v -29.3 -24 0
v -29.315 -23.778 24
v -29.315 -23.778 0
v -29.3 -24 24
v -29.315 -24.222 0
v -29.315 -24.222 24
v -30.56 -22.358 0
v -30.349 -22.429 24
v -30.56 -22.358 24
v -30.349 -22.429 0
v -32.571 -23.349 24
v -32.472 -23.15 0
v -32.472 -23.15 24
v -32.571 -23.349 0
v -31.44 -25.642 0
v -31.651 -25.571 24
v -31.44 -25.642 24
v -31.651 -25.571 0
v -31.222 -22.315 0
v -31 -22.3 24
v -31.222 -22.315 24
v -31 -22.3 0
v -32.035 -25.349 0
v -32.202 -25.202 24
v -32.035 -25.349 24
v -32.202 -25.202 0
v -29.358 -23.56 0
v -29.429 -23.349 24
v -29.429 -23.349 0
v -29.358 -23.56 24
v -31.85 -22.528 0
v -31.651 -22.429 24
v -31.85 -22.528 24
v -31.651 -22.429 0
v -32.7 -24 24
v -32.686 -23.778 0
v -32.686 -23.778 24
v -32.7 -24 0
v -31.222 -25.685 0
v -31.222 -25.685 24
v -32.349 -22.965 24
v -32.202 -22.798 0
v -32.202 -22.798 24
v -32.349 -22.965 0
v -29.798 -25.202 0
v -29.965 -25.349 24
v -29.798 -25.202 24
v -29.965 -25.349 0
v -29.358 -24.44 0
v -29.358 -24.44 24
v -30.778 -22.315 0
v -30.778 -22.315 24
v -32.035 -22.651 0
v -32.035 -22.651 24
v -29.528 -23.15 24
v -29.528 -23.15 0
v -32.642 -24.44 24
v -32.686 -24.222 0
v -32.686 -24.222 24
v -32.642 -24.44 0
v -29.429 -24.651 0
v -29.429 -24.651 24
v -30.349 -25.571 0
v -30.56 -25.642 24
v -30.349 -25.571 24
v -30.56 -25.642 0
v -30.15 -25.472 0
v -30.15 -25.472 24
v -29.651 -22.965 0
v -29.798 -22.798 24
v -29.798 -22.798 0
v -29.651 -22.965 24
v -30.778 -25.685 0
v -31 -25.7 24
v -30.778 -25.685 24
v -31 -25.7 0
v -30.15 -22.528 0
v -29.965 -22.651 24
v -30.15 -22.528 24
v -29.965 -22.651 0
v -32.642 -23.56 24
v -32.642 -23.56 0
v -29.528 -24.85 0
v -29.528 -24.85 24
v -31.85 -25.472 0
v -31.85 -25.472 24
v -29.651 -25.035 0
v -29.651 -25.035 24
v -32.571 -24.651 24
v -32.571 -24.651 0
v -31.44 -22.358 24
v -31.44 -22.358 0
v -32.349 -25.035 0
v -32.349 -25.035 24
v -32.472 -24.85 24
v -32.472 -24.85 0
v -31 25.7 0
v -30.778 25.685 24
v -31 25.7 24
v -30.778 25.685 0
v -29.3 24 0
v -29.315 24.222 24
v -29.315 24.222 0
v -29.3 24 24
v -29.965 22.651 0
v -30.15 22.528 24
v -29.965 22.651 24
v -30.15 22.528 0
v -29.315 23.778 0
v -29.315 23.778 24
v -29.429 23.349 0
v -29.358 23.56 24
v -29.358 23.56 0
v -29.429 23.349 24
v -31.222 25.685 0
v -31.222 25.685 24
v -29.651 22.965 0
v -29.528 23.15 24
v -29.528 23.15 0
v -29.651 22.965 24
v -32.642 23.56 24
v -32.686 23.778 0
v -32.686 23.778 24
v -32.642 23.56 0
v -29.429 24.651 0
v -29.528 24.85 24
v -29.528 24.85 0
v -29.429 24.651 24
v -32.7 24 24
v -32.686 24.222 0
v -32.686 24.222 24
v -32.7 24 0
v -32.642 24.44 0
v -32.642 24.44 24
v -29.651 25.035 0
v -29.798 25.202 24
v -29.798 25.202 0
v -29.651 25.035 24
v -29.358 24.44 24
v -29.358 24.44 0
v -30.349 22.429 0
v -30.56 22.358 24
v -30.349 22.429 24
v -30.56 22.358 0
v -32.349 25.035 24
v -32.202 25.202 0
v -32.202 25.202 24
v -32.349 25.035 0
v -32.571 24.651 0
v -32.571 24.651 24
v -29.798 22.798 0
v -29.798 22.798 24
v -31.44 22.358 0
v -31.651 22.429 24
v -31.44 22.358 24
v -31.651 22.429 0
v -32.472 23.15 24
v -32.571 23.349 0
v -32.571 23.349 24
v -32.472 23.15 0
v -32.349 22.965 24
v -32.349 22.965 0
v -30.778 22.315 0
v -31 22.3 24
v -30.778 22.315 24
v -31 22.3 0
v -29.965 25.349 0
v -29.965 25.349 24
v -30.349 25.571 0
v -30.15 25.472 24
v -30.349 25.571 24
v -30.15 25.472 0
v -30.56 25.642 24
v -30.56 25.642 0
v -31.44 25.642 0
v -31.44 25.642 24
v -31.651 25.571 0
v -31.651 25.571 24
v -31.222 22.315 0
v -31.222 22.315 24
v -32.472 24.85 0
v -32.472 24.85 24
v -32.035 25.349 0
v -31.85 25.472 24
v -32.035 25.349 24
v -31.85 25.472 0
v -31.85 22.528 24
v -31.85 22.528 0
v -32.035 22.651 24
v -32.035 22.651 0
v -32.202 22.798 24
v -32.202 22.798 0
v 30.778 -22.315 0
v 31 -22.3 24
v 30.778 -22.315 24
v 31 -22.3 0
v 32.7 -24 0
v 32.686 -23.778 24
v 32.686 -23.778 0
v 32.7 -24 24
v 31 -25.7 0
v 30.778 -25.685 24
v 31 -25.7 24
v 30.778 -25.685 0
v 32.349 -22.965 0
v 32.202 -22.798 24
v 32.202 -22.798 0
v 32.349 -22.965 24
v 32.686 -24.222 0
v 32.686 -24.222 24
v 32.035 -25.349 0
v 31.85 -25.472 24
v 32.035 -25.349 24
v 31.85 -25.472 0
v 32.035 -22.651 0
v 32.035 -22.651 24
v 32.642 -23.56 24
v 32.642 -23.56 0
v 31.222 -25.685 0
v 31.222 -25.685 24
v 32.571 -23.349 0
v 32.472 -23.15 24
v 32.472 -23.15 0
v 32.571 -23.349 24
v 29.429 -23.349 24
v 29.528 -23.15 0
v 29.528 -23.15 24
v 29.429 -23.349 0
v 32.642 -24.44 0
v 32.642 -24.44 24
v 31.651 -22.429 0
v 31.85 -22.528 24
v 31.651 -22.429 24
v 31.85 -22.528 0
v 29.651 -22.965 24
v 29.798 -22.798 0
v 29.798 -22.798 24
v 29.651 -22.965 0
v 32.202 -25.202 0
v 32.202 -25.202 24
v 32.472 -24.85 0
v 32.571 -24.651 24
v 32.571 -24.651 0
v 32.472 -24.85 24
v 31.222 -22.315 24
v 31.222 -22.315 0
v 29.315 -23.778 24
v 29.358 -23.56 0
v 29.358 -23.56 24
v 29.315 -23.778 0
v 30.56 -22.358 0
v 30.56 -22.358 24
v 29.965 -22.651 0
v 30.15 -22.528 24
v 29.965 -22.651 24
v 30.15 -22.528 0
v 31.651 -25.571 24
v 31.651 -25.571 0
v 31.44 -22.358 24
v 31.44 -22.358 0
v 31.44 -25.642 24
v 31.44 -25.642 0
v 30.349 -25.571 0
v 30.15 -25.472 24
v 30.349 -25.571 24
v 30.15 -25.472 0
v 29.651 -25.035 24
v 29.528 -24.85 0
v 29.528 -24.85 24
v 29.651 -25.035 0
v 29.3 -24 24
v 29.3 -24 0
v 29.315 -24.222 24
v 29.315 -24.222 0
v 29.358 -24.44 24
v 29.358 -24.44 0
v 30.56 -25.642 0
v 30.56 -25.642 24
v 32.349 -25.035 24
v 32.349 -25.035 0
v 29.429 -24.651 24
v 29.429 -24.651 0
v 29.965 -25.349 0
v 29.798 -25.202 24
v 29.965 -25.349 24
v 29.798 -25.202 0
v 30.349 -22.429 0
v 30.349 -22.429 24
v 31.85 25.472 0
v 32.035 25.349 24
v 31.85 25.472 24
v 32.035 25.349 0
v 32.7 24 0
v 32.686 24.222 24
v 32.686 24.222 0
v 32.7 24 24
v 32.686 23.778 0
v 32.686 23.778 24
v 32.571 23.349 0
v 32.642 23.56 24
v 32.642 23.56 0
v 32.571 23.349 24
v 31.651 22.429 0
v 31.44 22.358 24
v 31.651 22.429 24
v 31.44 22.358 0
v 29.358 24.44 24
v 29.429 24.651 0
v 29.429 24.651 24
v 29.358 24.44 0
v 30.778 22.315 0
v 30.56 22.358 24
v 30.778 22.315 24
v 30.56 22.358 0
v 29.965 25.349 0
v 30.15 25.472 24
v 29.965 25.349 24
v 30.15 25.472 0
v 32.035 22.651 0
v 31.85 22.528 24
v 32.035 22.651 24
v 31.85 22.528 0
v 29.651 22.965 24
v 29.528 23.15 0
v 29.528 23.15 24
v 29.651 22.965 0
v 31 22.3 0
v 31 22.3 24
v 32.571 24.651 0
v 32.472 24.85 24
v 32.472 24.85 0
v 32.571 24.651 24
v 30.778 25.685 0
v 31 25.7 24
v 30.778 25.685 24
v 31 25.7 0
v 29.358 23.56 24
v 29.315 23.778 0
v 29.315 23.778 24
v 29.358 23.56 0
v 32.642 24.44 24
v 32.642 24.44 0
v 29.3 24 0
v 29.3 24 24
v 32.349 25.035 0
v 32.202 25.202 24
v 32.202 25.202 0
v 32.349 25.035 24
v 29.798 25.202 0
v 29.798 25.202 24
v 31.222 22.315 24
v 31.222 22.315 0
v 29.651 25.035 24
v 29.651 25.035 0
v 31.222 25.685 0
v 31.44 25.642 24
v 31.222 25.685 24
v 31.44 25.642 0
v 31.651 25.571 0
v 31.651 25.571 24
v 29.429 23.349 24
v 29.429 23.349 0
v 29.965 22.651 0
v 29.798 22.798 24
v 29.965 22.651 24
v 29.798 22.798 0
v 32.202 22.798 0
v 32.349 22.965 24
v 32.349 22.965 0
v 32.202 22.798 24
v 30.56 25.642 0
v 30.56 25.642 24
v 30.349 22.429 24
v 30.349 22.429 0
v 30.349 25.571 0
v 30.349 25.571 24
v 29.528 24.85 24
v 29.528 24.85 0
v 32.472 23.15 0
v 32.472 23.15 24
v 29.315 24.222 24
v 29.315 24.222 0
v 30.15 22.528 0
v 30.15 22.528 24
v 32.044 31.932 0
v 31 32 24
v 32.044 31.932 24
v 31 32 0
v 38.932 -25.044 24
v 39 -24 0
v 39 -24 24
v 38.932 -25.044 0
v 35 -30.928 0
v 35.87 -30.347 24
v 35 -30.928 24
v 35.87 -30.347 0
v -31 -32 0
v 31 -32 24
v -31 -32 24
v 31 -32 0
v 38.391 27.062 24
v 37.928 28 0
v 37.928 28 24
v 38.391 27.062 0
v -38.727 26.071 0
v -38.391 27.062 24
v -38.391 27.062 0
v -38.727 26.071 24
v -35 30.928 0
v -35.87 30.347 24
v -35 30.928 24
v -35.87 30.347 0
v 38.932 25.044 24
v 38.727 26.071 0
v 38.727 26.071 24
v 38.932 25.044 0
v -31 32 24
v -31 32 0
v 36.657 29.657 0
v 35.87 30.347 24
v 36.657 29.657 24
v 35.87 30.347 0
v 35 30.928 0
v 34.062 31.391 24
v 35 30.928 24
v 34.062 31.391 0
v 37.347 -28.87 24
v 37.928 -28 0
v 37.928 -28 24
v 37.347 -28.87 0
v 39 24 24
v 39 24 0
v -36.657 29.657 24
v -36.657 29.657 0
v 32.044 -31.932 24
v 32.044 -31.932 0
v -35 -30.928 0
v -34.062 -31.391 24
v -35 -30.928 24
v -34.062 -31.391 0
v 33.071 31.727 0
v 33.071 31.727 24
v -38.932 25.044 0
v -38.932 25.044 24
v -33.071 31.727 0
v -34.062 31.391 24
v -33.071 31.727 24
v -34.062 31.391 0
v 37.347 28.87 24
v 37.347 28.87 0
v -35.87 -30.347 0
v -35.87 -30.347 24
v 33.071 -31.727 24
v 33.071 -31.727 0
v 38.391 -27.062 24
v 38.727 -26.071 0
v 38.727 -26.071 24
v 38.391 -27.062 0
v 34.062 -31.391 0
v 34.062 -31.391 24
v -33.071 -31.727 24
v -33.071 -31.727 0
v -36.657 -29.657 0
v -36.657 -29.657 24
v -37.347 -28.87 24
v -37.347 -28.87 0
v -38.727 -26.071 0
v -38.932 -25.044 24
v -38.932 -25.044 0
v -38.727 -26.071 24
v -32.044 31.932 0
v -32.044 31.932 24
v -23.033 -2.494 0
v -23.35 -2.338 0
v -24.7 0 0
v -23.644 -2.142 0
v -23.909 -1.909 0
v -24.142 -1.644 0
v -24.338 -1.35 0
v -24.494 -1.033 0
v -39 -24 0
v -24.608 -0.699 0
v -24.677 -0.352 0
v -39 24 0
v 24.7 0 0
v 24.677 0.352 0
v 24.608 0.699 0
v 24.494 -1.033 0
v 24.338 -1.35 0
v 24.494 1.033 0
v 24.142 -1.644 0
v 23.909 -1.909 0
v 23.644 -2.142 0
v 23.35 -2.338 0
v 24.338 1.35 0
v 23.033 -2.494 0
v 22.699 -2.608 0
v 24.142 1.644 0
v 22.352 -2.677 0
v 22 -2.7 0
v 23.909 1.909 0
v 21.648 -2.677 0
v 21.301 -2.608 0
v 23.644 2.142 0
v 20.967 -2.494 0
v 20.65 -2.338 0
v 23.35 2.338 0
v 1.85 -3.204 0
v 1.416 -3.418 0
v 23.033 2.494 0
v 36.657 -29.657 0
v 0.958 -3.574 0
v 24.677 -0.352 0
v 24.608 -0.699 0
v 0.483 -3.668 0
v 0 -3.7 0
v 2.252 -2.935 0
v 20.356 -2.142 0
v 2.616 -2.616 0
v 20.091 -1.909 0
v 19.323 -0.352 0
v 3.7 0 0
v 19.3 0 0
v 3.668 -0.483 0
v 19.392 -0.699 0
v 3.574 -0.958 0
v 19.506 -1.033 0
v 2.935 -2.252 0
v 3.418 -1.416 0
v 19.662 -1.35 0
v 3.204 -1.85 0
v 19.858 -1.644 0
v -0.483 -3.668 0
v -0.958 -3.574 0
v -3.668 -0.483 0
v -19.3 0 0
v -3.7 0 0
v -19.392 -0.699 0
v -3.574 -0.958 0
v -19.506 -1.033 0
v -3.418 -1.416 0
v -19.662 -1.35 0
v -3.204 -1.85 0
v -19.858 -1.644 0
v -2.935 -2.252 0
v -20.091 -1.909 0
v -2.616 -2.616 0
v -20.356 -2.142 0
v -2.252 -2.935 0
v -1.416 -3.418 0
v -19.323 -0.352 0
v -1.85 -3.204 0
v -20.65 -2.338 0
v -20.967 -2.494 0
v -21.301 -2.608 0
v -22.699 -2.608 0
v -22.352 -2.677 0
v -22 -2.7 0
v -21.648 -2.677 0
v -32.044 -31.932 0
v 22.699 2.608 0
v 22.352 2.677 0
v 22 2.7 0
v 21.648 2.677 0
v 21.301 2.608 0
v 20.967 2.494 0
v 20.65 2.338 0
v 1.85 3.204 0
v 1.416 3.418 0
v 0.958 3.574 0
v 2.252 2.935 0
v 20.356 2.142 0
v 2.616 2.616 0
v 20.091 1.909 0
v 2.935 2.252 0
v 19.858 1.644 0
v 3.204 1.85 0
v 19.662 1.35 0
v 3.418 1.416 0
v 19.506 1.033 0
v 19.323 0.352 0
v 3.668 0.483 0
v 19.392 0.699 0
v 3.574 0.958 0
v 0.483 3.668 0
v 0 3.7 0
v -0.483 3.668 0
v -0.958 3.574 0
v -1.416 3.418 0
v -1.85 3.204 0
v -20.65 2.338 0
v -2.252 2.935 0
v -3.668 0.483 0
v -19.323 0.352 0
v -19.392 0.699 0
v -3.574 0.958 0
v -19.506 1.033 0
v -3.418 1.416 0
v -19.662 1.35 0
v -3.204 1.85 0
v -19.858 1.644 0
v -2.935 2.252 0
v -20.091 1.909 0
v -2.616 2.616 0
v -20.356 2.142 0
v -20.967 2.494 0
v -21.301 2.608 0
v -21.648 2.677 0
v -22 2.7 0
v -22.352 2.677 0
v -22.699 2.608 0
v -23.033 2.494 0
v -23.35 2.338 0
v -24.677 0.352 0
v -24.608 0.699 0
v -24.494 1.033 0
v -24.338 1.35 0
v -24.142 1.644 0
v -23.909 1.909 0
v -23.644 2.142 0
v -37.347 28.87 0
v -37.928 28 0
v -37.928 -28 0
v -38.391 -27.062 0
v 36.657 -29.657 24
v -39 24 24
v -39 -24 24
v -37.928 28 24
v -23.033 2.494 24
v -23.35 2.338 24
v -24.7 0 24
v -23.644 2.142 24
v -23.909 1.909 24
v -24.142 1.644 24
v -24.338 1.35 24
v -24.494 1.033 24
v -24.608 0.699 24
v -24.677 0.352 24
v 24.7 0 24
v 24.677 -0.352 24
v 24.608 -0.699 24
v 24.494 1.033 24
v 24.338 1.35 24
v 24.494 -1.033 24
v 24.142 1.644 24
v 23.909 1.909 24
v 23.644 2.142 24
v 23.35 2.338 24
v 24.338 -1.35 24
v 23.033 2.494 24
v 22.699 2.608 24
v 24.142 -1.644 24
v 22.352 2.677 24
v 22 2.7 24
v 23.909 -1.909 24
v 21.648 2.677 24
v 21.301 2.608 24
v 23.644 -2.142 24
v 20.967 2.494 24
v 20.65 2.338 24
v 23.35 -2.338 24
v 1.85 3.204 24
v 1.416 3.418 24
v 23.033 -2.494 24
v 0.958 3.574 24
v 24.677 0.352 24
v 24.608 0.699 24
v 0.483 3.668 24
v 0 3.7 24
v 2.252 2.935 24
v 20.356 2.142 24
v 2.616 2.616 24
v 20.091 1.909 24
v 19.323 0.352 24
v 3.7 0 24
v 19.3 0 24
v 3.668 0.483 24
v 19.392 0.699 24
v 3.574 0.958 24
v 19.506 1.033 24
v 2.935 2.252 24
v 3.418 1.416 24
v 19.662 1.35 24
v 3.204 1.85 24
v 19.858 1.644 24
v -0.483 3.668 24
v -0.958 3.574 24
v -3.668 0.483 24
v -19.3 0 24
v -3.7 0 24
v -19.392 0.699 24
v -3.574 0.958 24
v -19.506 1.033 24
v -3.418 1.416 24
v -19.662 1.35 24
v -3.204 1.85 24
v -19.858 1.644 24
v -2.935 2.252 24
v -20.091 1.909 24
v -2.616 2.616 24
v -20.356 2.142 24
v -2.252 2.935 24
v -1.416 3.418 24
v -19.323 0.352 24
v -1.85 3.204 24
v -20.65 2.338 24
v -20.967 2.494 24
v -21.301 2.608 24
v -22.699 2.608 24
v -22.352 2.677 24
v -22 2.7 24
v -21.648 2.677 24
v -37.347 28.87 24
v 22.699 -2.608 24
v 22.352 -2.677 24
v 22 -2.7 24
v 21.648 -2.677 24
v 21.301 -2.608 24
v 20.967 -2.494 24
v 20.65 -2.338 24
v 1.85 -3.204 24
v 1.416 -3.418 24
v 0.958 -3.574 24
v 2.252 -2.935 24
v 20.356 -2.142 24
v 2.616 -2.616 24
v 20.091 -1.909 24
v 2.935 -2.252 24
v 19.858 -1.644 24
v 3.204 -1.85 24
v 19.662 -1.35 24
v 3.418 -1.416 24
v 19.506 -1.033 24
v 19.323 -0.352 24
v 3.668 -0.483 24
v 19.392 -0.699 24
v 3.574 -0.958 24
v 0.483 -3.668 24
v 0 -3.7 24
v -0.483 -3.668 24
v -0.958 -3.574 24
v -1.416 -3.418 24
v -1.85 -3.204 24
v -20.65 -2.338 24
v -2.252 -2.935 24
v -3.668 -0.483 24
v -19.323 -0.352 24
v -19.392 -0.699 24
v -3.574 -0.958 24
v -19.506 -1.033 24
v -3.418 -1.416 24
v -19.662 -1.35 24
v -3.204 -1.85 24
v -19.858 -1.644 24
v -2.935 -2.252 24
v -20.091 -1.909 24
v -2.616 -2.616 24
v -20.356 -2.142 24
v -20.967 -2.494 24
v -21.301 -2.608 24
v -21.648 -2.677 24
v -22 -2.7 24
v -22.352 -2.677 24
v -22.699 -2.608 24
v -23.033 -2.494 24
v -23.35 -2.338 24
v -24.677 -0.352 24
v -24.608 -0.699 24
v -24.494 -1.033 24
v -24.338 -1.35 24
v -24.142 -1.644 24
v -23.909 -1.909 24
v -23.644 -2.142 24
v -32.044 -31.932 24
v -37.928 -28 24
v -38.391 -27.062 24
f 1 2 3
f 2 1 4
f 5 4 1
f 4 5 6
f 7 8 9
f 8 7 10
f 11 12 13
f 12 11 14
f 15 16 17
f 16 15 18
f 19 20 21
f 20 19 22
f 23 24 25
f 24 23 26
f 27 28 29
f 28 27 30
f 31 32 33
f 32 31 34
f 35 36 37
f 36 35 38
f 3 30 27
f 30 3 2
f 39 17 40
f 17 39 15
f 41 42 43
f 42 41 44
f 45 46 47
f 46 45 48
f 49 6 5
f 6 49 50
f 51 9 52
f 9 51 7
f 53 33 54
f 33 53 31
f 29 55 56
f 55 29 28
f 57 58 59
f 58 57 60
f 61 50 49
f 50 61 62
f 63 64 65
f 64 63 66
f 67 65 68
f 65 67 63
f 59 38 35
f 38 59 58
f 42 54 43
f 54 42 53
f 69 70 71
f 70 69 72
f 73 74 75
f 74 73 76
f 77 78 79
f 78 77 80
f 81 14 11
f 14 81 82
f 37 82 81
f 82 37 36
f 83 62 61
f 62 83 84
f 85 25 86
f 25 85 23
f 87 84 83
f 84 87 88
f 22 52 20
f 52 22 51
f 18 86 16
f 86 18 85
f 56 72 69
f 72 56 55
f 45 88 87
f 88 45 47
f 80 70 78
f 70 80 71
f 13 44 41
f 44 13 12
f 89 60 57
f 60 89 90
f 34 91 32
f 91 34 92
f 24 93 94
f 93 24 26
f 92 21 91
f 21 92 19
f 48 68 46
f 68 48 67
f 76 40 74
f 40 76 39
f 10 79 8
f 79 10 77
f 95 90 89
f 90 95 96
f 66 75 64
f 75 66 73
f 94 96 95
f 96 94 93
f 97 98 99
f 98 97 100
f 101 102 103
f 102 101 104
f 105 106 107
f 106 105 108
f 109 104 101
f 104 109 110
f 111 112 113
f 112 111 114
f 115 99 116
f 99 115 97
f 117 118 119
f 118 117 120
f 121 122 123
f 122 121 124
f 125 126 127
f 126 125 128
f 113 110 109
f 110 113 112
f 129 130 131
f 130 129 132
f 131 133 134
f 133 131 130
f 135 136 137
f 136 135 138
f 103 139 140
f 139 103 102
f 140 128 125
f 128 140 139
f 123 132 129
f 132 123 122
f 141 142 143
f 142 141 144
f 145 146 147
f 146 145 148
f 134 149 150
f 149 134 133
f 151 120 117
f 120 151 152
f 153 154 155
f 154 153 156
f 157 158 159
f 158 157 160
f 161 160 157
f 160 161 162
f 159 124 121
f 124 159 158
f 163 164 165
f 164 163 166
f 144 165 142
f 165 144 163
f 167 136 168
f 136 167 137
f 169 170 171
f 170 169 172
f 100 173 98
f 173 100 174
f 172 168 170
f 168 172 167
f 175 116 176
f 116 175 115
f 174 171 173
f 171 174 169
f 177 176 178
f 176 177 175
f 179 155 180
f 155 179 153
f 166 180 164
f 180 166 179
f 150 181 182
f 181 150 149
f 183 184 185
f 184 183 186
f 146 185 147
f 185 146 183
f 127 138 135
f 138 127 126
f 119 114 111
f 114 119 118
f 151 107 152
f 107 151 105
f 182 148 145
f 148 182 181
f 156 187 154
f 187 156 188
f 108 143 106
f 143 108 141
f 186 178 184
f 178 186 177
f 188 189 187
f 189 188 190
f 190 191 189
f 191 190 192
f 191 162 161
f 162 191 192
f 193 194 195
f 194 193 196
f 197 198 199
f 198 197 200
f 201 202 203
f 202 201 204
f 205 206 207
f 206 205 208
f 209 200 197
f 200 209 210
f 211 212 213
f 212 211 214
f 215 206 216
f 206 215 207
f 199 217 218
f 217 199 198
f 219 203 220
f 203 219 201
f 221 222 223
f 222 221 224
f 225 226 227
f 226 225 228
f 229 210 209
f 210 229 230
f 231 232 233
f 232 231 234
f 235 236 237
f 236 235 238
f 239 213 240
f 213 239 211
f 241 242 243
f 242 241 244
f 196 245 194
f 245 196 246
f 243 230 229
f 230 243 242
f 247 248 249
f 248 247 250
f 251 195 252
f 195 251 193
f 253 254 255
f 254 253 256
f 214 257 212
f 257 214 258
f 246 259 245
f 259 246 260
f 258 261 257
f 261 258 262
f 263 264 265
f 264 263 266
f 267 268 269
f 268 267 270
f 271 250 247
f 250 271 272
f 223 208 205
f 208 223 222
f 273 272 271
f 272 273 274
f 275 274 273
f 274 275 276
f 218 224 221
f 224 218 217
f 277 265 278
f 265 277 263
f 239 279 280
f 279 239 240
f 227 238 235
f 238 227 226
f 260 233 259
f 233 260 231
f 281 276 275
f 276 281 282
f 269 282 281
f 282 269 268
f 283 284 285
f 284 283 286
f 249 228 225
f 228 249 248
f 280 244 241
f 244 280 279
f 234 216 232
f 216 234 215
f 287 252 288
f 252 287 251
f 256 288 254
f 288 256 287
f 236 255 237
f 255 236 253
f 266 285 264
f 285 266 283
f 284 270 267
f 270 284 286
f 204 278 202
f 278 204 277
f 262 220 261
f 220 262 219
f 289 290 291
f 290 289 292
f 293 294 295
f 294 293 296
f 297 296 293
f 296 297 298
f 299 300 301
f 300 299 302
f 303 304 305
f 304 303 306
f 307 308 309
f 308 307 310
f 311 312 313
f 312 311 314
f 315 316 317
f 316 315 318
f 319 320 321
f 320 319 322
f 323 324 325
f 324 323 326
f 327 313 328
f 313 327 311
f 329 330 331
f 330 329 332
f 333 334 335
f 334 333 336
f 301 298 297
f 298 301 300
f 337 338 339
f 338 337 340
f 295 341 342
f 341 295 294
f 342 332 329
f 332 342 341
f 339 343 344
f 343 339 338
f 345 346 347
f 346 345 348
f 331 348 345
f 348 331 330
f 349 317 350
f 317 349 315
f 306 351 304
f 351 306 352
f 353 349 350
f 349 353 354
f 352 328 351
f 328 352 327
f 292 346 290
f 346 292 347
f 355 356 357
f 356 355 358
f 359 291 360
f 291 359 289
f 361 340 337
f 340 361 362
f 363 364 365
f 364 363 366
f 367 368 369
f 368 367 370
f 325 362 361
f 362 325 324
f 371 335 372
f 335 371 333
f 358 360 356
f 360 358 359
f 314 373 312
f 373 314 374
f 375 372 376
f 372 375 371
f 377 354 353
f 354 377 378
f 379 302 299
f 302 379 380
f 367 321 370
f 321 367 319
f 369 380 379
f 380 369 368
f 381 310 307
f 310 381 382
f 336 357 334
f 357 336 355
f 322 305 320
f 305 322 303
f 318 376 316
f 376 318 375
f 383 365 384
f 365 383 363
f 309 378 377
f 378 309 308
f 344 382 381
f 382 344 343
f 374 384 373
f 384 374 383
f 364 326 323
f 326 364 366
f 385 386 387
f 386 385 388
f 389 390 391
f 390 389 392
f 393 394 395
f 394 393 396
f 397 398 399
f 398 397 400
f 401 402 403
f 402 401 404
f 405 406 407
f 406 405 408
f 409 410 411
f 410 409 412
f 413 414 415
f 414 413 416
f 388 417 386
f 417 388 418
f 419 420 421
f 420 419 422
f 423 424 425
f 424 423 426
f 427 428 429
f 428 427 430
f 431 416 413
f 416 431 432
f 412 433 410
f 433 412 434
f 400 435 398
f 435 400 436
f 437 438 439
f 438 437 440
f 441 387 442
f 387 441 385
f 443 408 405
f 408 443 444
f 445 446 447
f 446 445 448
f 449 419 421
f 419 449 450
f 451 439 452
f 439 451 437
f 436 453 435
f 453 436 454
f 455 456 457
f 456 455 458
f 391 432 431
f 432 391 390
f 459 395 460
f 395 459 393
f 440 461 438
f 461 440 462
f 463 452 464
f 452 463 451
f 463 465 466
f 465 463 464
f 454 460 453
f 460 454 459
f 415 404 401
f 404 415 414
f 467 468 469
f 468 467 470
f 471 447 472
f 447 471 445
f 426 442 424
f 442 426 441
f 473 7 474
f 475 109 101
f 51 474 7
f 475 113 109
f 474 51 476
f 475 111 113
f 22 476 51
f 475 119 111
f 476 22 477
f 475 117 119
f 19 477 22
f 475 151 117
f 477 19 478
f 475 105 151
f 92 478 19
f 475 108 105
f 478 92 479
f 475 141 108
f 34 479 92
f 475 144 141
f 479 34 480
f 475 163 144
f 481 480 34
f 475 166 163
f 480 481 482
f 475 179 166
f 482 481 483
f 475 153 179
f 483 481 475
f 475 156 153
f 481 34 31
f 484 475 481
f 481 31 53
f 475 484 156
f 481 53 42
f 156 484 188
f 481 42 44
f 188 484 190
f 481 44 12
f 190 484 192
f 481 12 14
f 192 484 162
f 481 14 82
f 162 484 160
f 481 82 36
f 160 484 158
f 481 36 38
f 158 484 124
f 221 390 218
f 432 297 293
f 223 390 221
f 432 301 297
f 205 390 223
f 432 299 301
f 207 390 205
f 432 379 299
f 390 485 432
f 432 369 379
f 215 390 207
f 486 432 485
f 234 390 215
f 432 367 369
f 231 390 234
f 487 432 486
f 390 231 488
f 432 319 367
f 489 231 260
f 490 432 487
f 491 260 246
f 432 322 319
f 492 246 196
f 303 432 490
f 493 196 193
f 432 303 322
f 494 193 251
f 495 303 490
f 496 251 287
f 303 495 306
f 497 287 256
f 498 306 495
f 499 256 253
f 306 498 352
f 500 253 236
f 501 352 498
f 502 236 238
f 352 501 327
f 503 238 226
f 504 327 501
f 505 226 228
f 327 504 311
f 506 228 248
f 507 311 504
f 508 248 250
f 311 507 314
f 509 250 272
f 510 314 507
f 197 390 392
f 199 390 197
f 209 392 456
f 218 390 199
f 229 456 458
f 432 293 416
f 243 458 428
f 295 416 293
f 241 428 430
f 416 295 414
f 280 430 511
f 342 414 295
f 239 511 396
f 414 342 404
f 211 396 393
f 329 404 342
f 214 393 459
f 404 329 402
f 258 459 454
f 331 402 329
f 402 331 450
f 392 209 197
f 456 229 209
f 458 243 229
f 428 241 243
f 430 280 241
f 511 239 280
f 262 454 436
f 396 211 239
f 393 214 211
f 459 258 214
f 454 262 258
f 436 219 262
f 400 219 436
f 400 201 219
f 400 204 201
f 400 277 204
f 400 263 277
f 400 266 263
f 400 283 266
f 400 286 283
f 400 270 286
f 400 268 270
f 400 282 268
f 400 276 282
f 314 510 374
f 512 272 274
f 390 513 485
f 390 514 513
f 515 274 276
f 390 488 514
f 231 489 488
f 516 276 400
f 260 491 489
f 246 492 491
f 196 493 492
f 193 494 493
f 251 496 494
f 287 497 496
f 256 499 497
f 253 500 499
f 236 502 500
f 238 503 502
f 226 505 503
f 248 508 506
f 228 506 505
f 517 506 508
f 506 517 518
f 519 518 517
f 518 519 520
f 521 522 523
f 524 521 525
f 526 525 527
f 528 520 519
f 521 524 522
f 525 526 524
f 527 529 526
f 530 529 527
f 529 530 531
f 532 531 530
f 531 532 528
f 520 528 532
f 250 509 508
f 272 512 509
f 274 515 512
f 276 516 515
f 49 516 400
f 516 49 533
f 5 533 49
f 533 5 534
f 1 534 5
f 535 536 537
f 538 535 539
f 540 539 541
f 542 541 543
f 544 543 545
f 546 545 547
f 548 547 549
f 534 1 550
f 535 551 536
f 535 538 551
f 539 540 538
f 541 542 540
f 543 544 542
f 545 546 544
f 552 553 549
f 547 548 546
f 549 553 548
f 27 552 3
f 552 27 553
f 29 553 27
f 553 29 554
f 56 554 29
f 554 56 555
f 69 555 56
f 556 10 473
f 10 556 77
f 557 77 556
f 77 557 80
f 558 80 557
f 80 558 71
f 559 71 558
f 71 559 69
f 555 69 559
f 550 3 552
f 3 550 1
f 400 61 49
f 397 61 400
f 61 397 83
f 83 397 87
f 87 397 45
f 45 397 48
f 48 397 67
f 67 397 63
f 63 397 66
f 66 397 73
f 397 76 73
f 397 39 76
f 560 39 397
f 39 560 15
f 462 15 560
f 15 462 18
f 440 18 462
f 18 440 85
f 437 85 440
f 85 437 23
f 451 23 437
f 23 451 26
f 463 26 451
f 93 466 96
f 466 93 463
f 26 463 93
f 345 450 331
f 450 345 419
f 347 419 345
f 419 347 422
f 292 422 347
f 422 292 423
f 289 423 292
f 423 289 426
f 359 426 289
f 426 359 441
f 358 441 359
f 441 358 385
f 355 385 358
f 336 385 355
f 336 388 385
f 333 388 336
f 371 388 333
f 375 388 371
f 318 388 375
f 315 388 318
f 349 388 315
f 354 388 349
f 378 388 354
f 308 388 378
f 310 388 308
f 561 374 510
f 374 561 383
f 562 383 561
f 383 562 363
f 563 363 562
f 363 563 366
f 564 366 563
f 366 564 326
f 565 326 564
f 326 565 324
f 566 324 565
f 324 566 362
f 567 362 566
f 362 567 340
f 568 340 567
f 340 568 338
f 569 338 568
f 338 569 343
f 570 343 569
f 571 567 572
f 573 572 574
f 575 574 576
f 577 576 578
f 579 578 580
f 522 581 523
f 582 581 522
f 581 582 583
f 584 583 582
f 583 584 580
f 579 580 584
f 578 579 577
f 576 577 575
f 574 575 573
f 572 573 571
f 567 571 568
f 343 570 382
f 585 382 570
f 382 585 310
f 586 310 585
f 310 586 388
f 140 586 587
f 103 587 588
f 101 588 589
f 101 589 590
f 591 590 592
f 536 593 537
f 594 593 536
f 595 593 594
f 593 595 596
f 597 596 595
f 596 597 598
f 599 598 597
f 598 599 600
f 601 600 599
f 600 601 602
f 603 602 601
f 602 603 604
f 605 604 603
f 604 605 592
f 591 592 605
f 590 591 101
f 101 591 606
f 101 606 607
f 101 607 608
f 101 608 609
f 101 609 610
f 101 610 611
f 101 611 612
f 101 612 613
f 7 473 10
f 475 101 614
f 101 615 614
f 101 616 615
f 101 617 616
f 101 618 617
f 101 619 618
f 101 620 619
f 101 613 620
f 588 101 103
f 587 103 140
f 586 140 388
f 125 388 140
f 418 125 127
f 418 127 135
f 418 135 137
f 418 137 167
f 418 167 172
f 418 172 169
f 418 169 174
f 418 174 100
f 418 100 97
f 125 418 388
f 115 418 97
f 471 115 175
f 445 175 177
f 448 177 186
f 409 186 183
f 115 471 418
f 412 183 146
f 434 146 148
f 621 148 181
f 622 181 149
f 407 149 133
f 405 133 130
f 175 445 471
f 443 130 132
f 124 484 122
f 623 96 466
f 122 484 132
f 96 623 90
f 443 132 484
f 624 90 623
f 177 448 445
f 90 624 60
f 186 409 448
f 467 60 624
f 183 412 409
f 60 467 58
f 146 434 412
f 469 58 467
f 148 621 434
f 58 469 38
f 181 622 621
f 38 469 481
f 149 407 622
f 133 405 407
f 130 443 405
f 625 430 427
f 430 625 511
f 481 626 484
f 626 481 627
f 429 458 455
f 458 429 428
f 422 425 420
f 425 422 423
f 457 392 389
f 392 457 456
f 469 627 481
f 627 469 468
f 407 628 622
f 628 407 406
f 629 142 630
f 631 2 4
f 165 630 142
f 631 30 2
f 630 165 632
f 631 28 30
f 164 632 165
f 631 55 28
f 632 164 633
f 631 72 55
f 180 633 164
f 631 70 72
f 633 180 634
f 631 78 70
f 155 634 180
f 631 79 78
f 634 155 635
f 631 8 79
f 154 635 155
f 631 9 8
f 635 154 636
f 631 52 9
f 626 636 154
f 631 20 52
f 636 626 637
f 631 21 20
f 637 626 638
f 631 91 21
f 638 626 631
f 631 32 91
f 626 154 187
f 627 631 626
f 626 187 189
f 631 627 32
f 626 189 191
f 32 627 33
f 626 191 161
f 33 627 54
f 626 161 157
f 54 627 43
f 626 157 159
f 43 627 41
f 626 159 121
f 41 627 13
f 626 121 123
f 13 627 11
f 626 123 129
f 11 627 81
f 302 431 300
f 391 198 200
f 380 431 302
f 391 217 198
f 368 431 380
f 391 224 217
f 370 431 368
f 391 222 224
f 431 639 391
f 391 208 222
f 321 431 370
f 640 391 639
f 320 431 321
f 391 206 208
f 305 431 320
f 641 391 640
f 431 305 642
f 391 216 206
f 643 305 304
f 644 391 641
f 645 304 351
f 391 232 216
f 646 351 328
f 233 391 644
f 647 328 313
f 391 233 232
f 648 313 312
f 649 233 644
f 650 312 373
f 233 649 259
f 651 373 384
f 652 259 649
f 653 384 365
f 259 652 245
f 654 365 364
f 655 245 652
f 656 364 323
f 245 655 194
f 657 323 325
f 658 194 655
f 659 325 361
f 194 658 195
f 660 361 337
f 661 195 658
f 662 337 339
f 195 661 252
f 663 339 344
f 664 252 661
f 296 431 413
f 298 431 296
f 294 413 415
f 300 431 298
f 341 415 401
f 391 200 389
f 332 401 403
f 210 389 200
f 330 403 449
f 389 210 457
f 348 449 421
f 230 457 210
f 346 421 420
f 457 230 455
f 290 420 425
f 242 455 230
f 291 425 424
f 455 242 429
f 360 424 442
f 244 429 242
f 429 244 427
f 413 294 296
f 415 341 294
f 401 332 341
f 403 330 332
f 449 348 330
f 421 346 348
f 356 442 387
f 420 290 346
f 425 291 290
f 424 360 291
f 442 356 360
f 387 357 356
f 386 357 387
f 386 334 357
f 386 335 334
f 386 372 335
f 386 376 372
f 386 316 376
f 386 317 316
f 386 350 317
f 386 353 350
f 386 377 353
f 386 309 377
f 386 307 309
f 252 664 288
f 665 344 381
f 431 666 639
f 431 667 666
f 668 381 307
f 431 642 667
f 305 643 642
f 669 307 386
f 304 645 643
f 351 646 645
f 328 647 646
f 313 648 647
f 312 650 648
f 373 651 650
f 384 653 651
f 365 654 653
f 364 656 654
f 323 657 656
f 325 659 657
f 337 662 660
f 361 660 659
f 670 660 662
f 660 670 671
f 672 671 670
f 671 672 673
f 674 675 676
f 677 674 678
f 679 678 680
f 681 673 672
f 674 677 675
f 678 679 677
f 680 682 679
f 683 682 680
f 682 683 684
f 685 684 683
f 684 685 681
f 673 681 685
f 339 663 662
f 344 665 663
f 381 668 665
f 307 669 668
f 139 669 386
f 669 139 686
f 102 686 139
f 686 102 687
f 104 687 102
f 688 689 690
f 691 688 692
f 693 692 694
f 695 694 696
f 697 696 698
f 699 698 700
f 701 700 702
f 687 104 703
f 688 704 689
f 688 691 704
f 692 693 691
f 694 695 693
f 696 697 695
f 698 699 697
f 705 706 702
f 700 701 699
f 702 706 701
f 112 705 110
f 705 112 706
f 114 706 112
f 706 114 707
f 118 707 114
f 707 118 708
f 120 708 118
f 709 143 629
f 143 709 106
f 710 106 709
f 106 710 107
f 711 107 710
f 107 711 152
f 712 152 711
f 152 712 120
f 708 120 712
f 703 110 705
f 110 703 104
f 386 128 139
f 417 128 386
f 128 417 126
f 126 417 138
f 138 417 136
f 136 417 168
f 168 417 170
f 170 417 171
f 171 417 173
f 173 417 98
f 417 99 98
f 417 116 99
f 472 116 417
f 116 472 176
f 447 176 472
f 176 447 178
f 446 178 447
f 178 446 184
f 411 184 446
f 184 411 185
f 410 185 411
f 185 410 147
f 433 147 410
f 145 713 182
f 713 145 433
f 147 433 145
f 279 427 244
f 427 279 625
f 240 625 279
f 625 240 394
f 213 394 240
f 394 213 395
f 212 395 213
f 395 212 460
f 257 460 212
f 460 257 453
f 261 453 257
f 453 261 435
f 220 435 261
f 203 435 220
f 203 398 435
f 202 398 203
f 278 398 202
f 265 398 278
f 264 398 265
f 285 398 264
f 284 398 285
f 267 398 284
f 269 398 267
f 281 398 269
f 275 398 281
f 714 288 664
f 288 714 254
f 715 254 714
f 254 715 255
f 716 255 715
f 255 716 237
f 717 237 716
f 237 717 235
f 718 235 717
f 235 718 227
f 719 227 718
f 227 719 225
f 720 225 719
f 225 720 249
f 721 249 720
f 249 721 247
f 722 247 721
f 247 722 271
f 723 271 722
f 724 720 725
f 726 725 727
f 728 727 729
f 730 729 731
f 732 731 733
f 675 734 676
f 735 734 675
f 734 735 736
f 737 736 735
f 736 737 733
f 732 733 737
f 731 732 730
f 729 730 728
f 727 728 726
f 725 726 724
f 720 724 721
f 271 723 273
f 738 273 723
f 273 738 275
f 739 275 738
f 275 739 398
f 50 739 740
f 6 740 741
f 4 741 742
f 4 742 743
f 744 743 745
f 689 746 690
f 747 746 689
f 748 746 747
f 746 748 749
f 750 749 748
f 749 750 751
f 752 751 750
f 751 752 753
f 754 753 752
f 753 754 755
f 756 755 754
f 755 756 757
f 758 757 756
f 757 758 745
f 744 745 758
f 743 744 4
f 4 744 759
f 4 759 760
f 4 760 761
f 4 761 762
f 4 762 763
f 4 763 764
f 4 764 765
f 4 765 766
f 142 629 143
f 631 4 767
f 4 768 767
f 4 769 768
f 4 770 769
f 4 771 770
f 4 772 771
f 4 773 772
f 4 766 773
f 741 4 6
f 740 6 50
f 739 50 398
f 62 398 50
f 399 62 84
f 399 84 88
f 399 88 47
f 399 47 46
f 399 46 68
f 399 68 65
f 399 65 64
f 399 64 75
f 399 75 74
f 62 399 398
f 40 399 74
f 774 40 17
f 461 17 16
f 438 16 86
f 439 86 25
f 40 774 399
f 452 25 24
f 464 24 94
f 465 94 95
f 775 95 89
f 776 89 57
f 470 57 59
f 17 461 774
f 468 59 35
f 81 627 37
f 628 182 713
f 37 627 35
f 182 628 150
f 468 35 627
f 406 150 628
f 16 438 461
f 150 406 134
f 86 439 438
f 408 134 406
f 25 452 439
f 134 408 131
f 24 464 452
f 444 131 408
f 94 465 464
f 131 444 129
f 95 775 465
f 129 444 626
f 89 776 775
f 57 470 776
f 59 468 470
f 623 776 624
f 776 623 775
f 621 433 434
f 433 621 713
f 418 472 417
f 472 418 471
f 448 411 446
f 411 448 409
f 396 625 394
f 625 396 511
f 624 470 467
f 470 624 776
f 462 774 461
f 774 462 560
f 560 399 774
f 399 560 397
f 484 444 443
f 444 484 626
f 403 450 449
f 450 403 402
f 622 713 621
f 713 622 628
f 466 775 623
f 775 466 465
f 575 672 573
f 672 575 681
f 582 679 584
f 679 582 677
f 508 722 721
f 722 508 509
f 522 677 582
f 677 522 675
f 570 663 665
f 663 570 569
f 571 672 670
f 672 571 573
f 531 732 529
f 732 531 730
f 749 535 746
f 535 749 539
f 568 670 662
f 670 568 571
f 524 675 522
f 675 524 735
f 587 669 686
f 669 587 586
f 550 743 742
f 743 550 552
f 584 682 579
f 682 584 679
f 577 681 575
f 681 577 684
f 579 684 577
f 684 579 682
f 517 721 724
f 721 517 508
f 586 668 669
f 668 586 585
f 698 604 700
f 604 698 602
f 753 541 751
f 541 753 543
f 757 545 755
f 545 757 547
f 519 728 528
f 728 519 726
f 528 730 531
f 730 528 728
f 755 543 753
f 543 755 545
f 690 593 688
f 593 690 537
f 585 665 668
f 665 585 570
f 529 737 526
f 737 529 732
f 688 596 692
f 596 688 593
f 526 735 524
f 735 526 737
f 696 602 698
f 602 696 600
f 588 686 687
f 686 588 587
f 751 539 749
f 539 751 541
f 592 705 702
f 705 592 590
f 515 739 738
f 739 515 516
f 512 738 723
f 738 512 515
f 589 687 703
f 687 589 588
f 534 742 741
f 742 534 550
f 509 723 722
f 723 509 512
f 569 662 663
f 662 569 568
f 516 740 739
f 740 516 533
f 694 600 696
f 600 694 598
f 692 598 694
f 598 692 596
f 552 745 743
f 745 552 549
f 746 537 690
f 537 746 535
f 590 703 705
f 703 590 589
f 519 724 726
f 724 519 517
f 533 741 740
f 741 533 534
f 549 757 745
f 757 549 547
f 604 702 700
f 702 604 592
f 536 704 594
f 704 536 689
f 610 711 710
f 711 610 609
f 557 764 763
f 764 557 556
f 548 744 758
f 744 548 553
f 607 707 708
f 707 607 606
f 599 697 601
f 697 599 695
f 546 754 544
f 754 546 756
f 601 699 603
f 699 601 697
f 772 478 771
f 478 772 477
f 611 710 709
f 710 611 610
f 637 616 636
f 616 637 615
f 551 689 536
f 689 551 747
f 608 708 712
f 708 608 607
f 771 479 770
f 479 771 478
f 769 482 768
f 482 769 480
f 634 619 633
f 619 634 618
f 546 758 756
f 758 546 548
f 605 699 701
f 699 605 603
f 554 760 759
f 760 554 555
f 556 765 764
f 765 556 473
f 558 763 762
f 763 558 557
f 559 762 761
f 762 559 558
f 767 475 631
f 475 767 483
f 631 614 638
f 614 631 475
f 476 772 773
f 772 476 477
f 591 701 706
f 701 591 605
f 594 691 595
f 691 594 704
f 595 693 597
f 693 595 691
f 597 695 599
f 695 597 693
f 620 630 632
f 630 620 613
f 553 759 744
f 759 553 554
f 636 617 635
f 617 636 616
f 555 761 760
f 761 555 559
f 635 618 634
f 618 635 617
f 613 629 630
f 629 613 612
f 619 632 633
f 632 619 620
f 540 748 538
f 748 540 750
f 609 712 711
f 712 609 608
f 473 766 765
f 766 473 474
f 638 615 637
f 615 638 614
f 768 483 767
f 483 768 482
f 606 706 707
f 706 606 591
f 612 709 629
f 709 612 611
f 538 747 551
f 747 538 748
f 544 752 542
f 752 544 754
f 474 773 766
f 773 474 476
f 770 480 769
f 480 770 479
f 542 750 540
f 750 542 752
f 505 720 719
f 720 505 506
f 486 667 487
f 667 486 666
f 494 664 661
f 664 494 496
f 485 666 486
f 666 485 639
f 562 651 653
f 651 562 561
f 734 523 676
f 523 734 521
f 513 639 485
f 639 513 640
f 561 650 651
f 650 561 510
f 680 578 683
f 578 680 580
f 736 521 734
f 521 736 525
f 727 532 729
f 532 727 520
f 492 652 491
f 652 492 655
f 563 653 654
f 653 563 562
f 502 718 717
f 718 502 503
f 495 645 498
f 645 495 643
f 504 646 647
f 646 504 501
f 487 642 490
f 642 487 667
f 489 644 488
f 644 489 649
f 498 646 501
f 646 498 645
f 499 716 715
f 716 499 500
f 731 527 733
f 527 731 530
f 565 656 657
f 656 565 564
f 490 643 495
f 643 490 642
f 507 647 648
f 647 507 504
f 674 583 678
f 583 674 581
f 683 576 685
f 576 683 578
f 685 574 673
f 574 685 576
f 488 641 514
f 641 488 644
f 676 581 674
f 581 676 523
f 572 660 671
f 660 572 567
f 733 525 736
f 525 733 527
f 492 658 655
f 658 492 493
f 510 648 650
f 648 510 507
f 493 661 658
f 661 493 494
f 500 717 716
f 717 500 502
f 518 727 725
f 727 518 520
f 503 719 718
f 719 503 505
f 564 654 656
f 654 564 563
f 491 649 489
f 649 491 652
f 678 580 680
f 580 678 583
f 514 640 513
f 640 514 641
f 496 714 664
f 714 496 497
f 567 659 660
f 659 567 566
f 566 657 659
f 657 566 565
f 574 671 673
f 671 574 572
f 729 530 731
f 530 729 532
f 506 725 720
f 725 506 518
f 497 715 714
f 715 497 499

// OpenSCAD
// ============================================================================
// Get Me An Alt — Parametric OpenSCAD Module
// Part: PRT-08 — Arca-Swiss Quick-Release Camera Tilt Cradle (camera-arca-cradle)
// Function: Tilts the camera ±90° around its optical center of gravity.
// Target Bounding Box (mm): [78, 64, 24]
// Print Material: PLA+ | Min Wall: >= 1.6mm | Tolerance: 0.2mm
// ============================================================================
$fn = 48;
part_width = 78;
part_depth = 64;
part_height = 24;
wall_thickness = 3.5;
floor_thickness = 3.5;
corner_radius = 8;
tolerance = 0.2;
m3_clearance_d = 3.4; // M3 screw clearance hole (3.0mm + 2*0.2mm)

module rounded_rect_prism(w, d, h, r) {
  cr = max(0.5, min(r, min(w, d) / 2 - 0.1));
  linear_extrude(height = h)
    offset(r = cr)
      offset(r = -cr)
        square([w, d], center = true);
}

module part_camera_arca_cradle() {
  difference() {
    rounded_rect_prism(part_width, part_depth, part_height, corner_radius);
    translate([0, 0, -1]) cylinder(h = part_height + 2, r = 3.5 + tolerance);
    translate([-22, 0, -1]) cylinder(h = part_height + 2, r = 2.5 + tolerance);
    translate([22, 0, -1]) cylinder(h = part_height + 2, r = 2.5 + tolerance);
    // M3 corner mounting holes
    for (mx = [-1, 1], my = [-1, 1]) {
      translate([mx * (part_width / 2 - 8), my * (part_depth / 2 - 8), -1])
        cylinder(h = part_height + 2, d = m3_clearance_d);
    }
  }
}

part_camera_arca_cradle();
